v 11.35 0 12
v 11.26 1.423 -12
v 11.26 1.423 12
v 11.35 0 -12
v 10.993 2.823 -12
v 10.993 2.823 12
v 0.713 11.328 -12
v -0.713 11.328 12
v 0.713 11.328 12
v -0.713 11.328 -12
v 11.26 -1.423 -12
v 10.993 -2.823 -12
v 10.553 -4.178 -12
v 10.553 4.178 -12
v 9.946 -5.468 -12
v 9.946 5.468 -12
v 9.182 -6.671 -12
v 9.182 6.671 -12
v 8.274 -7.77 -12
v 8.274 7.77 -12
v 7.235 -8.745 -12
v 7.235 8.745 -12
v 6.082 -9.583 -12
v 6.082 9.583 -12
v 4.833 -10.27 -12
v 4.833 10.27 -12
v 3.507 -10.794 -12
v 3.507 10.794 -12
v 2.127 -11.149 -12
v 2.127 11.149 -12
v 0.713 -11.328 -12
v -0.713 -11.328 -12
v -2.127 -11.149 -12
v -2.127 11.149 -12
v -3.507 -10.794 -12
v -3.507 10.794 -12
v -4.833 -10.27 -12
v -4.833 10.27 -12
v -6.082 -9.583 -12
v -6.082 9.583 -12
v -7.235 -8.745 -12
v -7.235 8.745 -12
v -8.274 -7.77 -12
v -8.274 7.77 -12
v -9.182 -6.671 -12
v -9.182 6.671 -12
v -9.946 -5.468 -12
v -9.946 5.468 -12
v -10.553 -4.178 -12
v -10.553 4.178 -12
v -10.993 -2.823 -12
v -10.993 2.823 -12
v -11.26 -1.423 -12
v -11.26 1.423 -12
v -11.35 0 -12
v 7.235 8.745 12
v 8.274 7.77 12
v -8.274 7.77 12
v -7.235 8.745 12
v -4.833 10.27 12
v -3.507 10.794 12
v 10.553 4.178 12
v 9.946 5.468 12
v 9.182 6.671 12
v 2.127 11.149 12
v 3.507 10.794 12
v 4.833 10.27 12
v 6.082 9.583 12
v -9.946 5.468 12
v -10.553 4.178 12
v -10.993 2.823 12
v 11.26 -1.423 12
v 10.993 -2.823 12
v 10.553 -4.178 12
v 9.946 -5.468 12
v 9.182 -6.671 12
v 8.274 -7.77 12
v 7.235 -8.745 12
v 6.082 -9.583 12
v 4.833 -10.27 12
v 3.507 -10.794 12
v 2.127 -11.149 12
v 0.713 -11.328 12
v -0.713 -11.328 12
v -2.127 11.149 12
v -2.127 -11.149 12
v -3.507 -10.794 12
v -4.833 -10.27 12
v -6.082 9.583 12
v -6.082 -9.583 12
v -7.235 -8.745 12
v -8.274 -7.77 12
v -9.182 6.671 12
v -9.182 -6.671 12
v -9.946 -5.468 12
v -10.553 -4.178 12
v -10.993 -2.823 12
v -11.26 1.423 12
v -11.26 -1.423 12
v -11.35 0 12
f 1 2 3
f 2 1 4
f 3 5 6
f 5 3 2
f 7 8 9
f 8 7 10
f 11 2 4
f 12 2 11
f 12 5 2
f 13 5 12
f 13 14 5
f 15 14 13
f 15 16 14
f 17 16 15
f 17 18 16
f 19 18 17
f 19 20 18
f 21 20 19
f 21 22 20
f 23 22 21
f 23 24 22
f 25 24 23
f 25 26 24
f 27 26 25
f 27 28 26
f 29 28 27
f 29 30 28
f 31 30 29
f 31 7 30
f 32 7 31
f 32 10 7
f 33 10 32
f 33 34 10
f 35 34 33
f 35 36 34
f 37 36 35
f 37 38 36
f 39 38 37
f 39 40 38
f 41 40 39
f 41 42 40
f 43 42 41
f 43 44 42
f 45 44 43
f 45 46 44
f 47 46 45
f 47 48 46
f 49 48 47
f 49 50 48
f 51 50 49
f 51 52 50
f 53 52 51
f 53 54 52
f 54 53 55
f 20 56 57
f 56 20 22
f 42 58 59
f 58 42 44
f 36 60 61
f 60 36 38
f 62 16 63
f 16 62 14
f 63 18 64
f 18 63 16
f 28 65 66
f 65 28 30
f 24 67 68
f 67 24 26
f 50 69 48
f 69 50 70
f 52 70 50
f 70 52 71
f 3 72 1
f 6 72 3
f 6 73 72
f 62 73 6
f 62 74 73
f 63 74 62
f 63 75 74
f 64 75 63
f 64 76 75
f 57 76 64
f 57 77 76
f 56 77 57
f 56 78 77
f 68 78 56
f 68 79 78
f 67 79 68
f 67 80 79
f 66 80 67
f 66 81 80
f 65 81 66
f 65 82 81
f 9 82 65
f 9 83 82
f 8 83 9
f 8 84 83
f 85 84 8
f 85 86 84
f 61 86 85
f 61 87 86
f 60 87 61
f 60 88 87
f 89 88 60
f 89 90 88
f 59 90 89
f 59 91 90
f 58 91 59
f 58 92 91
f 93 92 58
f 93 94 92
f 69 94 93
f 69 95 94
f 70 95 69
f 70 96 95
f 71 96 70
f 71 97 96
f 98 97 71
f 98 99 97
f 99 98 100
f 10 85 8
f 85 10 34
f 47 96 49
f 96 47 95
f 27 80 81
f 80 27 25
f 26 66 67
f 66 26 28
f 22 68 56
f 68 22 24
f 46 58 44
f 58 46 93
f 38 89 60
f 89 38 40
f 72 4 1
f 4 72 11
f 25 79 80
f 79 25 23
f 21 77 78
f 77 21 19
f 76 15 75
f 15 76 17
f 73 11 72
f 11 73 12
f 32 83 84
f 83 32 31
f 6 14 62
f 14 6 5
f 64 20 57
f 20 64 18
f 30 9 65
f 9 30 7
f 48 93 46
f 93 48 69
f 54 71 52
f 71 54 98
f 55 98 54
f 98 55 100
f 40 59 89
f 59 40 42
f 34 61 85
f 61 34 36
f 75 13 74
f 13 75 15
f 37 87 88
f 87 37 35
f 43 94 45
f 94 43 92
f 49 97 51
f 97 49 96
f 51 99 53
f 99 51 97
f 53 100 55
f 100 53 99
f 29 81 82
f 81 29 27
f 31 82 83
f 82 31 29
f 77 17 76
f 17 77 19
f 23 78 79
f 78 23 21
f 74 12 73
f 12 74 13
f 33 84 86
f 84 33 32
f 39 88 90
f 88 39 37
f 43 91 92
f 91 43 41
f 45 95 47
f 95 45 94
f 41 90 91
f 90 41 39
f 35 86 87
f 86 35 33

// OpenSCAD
$fn = 50;


difference() {
	union() {
		translate(v = [0, 0, -12.0000000000]) {
			cylinder(h = 24, r = 11.3500000000);
		}
	}
	union() {
		translate(v = [0, 0, -100.0000000000]) {
			cylinder(h = 200, r = 0);
		}
	}
}
